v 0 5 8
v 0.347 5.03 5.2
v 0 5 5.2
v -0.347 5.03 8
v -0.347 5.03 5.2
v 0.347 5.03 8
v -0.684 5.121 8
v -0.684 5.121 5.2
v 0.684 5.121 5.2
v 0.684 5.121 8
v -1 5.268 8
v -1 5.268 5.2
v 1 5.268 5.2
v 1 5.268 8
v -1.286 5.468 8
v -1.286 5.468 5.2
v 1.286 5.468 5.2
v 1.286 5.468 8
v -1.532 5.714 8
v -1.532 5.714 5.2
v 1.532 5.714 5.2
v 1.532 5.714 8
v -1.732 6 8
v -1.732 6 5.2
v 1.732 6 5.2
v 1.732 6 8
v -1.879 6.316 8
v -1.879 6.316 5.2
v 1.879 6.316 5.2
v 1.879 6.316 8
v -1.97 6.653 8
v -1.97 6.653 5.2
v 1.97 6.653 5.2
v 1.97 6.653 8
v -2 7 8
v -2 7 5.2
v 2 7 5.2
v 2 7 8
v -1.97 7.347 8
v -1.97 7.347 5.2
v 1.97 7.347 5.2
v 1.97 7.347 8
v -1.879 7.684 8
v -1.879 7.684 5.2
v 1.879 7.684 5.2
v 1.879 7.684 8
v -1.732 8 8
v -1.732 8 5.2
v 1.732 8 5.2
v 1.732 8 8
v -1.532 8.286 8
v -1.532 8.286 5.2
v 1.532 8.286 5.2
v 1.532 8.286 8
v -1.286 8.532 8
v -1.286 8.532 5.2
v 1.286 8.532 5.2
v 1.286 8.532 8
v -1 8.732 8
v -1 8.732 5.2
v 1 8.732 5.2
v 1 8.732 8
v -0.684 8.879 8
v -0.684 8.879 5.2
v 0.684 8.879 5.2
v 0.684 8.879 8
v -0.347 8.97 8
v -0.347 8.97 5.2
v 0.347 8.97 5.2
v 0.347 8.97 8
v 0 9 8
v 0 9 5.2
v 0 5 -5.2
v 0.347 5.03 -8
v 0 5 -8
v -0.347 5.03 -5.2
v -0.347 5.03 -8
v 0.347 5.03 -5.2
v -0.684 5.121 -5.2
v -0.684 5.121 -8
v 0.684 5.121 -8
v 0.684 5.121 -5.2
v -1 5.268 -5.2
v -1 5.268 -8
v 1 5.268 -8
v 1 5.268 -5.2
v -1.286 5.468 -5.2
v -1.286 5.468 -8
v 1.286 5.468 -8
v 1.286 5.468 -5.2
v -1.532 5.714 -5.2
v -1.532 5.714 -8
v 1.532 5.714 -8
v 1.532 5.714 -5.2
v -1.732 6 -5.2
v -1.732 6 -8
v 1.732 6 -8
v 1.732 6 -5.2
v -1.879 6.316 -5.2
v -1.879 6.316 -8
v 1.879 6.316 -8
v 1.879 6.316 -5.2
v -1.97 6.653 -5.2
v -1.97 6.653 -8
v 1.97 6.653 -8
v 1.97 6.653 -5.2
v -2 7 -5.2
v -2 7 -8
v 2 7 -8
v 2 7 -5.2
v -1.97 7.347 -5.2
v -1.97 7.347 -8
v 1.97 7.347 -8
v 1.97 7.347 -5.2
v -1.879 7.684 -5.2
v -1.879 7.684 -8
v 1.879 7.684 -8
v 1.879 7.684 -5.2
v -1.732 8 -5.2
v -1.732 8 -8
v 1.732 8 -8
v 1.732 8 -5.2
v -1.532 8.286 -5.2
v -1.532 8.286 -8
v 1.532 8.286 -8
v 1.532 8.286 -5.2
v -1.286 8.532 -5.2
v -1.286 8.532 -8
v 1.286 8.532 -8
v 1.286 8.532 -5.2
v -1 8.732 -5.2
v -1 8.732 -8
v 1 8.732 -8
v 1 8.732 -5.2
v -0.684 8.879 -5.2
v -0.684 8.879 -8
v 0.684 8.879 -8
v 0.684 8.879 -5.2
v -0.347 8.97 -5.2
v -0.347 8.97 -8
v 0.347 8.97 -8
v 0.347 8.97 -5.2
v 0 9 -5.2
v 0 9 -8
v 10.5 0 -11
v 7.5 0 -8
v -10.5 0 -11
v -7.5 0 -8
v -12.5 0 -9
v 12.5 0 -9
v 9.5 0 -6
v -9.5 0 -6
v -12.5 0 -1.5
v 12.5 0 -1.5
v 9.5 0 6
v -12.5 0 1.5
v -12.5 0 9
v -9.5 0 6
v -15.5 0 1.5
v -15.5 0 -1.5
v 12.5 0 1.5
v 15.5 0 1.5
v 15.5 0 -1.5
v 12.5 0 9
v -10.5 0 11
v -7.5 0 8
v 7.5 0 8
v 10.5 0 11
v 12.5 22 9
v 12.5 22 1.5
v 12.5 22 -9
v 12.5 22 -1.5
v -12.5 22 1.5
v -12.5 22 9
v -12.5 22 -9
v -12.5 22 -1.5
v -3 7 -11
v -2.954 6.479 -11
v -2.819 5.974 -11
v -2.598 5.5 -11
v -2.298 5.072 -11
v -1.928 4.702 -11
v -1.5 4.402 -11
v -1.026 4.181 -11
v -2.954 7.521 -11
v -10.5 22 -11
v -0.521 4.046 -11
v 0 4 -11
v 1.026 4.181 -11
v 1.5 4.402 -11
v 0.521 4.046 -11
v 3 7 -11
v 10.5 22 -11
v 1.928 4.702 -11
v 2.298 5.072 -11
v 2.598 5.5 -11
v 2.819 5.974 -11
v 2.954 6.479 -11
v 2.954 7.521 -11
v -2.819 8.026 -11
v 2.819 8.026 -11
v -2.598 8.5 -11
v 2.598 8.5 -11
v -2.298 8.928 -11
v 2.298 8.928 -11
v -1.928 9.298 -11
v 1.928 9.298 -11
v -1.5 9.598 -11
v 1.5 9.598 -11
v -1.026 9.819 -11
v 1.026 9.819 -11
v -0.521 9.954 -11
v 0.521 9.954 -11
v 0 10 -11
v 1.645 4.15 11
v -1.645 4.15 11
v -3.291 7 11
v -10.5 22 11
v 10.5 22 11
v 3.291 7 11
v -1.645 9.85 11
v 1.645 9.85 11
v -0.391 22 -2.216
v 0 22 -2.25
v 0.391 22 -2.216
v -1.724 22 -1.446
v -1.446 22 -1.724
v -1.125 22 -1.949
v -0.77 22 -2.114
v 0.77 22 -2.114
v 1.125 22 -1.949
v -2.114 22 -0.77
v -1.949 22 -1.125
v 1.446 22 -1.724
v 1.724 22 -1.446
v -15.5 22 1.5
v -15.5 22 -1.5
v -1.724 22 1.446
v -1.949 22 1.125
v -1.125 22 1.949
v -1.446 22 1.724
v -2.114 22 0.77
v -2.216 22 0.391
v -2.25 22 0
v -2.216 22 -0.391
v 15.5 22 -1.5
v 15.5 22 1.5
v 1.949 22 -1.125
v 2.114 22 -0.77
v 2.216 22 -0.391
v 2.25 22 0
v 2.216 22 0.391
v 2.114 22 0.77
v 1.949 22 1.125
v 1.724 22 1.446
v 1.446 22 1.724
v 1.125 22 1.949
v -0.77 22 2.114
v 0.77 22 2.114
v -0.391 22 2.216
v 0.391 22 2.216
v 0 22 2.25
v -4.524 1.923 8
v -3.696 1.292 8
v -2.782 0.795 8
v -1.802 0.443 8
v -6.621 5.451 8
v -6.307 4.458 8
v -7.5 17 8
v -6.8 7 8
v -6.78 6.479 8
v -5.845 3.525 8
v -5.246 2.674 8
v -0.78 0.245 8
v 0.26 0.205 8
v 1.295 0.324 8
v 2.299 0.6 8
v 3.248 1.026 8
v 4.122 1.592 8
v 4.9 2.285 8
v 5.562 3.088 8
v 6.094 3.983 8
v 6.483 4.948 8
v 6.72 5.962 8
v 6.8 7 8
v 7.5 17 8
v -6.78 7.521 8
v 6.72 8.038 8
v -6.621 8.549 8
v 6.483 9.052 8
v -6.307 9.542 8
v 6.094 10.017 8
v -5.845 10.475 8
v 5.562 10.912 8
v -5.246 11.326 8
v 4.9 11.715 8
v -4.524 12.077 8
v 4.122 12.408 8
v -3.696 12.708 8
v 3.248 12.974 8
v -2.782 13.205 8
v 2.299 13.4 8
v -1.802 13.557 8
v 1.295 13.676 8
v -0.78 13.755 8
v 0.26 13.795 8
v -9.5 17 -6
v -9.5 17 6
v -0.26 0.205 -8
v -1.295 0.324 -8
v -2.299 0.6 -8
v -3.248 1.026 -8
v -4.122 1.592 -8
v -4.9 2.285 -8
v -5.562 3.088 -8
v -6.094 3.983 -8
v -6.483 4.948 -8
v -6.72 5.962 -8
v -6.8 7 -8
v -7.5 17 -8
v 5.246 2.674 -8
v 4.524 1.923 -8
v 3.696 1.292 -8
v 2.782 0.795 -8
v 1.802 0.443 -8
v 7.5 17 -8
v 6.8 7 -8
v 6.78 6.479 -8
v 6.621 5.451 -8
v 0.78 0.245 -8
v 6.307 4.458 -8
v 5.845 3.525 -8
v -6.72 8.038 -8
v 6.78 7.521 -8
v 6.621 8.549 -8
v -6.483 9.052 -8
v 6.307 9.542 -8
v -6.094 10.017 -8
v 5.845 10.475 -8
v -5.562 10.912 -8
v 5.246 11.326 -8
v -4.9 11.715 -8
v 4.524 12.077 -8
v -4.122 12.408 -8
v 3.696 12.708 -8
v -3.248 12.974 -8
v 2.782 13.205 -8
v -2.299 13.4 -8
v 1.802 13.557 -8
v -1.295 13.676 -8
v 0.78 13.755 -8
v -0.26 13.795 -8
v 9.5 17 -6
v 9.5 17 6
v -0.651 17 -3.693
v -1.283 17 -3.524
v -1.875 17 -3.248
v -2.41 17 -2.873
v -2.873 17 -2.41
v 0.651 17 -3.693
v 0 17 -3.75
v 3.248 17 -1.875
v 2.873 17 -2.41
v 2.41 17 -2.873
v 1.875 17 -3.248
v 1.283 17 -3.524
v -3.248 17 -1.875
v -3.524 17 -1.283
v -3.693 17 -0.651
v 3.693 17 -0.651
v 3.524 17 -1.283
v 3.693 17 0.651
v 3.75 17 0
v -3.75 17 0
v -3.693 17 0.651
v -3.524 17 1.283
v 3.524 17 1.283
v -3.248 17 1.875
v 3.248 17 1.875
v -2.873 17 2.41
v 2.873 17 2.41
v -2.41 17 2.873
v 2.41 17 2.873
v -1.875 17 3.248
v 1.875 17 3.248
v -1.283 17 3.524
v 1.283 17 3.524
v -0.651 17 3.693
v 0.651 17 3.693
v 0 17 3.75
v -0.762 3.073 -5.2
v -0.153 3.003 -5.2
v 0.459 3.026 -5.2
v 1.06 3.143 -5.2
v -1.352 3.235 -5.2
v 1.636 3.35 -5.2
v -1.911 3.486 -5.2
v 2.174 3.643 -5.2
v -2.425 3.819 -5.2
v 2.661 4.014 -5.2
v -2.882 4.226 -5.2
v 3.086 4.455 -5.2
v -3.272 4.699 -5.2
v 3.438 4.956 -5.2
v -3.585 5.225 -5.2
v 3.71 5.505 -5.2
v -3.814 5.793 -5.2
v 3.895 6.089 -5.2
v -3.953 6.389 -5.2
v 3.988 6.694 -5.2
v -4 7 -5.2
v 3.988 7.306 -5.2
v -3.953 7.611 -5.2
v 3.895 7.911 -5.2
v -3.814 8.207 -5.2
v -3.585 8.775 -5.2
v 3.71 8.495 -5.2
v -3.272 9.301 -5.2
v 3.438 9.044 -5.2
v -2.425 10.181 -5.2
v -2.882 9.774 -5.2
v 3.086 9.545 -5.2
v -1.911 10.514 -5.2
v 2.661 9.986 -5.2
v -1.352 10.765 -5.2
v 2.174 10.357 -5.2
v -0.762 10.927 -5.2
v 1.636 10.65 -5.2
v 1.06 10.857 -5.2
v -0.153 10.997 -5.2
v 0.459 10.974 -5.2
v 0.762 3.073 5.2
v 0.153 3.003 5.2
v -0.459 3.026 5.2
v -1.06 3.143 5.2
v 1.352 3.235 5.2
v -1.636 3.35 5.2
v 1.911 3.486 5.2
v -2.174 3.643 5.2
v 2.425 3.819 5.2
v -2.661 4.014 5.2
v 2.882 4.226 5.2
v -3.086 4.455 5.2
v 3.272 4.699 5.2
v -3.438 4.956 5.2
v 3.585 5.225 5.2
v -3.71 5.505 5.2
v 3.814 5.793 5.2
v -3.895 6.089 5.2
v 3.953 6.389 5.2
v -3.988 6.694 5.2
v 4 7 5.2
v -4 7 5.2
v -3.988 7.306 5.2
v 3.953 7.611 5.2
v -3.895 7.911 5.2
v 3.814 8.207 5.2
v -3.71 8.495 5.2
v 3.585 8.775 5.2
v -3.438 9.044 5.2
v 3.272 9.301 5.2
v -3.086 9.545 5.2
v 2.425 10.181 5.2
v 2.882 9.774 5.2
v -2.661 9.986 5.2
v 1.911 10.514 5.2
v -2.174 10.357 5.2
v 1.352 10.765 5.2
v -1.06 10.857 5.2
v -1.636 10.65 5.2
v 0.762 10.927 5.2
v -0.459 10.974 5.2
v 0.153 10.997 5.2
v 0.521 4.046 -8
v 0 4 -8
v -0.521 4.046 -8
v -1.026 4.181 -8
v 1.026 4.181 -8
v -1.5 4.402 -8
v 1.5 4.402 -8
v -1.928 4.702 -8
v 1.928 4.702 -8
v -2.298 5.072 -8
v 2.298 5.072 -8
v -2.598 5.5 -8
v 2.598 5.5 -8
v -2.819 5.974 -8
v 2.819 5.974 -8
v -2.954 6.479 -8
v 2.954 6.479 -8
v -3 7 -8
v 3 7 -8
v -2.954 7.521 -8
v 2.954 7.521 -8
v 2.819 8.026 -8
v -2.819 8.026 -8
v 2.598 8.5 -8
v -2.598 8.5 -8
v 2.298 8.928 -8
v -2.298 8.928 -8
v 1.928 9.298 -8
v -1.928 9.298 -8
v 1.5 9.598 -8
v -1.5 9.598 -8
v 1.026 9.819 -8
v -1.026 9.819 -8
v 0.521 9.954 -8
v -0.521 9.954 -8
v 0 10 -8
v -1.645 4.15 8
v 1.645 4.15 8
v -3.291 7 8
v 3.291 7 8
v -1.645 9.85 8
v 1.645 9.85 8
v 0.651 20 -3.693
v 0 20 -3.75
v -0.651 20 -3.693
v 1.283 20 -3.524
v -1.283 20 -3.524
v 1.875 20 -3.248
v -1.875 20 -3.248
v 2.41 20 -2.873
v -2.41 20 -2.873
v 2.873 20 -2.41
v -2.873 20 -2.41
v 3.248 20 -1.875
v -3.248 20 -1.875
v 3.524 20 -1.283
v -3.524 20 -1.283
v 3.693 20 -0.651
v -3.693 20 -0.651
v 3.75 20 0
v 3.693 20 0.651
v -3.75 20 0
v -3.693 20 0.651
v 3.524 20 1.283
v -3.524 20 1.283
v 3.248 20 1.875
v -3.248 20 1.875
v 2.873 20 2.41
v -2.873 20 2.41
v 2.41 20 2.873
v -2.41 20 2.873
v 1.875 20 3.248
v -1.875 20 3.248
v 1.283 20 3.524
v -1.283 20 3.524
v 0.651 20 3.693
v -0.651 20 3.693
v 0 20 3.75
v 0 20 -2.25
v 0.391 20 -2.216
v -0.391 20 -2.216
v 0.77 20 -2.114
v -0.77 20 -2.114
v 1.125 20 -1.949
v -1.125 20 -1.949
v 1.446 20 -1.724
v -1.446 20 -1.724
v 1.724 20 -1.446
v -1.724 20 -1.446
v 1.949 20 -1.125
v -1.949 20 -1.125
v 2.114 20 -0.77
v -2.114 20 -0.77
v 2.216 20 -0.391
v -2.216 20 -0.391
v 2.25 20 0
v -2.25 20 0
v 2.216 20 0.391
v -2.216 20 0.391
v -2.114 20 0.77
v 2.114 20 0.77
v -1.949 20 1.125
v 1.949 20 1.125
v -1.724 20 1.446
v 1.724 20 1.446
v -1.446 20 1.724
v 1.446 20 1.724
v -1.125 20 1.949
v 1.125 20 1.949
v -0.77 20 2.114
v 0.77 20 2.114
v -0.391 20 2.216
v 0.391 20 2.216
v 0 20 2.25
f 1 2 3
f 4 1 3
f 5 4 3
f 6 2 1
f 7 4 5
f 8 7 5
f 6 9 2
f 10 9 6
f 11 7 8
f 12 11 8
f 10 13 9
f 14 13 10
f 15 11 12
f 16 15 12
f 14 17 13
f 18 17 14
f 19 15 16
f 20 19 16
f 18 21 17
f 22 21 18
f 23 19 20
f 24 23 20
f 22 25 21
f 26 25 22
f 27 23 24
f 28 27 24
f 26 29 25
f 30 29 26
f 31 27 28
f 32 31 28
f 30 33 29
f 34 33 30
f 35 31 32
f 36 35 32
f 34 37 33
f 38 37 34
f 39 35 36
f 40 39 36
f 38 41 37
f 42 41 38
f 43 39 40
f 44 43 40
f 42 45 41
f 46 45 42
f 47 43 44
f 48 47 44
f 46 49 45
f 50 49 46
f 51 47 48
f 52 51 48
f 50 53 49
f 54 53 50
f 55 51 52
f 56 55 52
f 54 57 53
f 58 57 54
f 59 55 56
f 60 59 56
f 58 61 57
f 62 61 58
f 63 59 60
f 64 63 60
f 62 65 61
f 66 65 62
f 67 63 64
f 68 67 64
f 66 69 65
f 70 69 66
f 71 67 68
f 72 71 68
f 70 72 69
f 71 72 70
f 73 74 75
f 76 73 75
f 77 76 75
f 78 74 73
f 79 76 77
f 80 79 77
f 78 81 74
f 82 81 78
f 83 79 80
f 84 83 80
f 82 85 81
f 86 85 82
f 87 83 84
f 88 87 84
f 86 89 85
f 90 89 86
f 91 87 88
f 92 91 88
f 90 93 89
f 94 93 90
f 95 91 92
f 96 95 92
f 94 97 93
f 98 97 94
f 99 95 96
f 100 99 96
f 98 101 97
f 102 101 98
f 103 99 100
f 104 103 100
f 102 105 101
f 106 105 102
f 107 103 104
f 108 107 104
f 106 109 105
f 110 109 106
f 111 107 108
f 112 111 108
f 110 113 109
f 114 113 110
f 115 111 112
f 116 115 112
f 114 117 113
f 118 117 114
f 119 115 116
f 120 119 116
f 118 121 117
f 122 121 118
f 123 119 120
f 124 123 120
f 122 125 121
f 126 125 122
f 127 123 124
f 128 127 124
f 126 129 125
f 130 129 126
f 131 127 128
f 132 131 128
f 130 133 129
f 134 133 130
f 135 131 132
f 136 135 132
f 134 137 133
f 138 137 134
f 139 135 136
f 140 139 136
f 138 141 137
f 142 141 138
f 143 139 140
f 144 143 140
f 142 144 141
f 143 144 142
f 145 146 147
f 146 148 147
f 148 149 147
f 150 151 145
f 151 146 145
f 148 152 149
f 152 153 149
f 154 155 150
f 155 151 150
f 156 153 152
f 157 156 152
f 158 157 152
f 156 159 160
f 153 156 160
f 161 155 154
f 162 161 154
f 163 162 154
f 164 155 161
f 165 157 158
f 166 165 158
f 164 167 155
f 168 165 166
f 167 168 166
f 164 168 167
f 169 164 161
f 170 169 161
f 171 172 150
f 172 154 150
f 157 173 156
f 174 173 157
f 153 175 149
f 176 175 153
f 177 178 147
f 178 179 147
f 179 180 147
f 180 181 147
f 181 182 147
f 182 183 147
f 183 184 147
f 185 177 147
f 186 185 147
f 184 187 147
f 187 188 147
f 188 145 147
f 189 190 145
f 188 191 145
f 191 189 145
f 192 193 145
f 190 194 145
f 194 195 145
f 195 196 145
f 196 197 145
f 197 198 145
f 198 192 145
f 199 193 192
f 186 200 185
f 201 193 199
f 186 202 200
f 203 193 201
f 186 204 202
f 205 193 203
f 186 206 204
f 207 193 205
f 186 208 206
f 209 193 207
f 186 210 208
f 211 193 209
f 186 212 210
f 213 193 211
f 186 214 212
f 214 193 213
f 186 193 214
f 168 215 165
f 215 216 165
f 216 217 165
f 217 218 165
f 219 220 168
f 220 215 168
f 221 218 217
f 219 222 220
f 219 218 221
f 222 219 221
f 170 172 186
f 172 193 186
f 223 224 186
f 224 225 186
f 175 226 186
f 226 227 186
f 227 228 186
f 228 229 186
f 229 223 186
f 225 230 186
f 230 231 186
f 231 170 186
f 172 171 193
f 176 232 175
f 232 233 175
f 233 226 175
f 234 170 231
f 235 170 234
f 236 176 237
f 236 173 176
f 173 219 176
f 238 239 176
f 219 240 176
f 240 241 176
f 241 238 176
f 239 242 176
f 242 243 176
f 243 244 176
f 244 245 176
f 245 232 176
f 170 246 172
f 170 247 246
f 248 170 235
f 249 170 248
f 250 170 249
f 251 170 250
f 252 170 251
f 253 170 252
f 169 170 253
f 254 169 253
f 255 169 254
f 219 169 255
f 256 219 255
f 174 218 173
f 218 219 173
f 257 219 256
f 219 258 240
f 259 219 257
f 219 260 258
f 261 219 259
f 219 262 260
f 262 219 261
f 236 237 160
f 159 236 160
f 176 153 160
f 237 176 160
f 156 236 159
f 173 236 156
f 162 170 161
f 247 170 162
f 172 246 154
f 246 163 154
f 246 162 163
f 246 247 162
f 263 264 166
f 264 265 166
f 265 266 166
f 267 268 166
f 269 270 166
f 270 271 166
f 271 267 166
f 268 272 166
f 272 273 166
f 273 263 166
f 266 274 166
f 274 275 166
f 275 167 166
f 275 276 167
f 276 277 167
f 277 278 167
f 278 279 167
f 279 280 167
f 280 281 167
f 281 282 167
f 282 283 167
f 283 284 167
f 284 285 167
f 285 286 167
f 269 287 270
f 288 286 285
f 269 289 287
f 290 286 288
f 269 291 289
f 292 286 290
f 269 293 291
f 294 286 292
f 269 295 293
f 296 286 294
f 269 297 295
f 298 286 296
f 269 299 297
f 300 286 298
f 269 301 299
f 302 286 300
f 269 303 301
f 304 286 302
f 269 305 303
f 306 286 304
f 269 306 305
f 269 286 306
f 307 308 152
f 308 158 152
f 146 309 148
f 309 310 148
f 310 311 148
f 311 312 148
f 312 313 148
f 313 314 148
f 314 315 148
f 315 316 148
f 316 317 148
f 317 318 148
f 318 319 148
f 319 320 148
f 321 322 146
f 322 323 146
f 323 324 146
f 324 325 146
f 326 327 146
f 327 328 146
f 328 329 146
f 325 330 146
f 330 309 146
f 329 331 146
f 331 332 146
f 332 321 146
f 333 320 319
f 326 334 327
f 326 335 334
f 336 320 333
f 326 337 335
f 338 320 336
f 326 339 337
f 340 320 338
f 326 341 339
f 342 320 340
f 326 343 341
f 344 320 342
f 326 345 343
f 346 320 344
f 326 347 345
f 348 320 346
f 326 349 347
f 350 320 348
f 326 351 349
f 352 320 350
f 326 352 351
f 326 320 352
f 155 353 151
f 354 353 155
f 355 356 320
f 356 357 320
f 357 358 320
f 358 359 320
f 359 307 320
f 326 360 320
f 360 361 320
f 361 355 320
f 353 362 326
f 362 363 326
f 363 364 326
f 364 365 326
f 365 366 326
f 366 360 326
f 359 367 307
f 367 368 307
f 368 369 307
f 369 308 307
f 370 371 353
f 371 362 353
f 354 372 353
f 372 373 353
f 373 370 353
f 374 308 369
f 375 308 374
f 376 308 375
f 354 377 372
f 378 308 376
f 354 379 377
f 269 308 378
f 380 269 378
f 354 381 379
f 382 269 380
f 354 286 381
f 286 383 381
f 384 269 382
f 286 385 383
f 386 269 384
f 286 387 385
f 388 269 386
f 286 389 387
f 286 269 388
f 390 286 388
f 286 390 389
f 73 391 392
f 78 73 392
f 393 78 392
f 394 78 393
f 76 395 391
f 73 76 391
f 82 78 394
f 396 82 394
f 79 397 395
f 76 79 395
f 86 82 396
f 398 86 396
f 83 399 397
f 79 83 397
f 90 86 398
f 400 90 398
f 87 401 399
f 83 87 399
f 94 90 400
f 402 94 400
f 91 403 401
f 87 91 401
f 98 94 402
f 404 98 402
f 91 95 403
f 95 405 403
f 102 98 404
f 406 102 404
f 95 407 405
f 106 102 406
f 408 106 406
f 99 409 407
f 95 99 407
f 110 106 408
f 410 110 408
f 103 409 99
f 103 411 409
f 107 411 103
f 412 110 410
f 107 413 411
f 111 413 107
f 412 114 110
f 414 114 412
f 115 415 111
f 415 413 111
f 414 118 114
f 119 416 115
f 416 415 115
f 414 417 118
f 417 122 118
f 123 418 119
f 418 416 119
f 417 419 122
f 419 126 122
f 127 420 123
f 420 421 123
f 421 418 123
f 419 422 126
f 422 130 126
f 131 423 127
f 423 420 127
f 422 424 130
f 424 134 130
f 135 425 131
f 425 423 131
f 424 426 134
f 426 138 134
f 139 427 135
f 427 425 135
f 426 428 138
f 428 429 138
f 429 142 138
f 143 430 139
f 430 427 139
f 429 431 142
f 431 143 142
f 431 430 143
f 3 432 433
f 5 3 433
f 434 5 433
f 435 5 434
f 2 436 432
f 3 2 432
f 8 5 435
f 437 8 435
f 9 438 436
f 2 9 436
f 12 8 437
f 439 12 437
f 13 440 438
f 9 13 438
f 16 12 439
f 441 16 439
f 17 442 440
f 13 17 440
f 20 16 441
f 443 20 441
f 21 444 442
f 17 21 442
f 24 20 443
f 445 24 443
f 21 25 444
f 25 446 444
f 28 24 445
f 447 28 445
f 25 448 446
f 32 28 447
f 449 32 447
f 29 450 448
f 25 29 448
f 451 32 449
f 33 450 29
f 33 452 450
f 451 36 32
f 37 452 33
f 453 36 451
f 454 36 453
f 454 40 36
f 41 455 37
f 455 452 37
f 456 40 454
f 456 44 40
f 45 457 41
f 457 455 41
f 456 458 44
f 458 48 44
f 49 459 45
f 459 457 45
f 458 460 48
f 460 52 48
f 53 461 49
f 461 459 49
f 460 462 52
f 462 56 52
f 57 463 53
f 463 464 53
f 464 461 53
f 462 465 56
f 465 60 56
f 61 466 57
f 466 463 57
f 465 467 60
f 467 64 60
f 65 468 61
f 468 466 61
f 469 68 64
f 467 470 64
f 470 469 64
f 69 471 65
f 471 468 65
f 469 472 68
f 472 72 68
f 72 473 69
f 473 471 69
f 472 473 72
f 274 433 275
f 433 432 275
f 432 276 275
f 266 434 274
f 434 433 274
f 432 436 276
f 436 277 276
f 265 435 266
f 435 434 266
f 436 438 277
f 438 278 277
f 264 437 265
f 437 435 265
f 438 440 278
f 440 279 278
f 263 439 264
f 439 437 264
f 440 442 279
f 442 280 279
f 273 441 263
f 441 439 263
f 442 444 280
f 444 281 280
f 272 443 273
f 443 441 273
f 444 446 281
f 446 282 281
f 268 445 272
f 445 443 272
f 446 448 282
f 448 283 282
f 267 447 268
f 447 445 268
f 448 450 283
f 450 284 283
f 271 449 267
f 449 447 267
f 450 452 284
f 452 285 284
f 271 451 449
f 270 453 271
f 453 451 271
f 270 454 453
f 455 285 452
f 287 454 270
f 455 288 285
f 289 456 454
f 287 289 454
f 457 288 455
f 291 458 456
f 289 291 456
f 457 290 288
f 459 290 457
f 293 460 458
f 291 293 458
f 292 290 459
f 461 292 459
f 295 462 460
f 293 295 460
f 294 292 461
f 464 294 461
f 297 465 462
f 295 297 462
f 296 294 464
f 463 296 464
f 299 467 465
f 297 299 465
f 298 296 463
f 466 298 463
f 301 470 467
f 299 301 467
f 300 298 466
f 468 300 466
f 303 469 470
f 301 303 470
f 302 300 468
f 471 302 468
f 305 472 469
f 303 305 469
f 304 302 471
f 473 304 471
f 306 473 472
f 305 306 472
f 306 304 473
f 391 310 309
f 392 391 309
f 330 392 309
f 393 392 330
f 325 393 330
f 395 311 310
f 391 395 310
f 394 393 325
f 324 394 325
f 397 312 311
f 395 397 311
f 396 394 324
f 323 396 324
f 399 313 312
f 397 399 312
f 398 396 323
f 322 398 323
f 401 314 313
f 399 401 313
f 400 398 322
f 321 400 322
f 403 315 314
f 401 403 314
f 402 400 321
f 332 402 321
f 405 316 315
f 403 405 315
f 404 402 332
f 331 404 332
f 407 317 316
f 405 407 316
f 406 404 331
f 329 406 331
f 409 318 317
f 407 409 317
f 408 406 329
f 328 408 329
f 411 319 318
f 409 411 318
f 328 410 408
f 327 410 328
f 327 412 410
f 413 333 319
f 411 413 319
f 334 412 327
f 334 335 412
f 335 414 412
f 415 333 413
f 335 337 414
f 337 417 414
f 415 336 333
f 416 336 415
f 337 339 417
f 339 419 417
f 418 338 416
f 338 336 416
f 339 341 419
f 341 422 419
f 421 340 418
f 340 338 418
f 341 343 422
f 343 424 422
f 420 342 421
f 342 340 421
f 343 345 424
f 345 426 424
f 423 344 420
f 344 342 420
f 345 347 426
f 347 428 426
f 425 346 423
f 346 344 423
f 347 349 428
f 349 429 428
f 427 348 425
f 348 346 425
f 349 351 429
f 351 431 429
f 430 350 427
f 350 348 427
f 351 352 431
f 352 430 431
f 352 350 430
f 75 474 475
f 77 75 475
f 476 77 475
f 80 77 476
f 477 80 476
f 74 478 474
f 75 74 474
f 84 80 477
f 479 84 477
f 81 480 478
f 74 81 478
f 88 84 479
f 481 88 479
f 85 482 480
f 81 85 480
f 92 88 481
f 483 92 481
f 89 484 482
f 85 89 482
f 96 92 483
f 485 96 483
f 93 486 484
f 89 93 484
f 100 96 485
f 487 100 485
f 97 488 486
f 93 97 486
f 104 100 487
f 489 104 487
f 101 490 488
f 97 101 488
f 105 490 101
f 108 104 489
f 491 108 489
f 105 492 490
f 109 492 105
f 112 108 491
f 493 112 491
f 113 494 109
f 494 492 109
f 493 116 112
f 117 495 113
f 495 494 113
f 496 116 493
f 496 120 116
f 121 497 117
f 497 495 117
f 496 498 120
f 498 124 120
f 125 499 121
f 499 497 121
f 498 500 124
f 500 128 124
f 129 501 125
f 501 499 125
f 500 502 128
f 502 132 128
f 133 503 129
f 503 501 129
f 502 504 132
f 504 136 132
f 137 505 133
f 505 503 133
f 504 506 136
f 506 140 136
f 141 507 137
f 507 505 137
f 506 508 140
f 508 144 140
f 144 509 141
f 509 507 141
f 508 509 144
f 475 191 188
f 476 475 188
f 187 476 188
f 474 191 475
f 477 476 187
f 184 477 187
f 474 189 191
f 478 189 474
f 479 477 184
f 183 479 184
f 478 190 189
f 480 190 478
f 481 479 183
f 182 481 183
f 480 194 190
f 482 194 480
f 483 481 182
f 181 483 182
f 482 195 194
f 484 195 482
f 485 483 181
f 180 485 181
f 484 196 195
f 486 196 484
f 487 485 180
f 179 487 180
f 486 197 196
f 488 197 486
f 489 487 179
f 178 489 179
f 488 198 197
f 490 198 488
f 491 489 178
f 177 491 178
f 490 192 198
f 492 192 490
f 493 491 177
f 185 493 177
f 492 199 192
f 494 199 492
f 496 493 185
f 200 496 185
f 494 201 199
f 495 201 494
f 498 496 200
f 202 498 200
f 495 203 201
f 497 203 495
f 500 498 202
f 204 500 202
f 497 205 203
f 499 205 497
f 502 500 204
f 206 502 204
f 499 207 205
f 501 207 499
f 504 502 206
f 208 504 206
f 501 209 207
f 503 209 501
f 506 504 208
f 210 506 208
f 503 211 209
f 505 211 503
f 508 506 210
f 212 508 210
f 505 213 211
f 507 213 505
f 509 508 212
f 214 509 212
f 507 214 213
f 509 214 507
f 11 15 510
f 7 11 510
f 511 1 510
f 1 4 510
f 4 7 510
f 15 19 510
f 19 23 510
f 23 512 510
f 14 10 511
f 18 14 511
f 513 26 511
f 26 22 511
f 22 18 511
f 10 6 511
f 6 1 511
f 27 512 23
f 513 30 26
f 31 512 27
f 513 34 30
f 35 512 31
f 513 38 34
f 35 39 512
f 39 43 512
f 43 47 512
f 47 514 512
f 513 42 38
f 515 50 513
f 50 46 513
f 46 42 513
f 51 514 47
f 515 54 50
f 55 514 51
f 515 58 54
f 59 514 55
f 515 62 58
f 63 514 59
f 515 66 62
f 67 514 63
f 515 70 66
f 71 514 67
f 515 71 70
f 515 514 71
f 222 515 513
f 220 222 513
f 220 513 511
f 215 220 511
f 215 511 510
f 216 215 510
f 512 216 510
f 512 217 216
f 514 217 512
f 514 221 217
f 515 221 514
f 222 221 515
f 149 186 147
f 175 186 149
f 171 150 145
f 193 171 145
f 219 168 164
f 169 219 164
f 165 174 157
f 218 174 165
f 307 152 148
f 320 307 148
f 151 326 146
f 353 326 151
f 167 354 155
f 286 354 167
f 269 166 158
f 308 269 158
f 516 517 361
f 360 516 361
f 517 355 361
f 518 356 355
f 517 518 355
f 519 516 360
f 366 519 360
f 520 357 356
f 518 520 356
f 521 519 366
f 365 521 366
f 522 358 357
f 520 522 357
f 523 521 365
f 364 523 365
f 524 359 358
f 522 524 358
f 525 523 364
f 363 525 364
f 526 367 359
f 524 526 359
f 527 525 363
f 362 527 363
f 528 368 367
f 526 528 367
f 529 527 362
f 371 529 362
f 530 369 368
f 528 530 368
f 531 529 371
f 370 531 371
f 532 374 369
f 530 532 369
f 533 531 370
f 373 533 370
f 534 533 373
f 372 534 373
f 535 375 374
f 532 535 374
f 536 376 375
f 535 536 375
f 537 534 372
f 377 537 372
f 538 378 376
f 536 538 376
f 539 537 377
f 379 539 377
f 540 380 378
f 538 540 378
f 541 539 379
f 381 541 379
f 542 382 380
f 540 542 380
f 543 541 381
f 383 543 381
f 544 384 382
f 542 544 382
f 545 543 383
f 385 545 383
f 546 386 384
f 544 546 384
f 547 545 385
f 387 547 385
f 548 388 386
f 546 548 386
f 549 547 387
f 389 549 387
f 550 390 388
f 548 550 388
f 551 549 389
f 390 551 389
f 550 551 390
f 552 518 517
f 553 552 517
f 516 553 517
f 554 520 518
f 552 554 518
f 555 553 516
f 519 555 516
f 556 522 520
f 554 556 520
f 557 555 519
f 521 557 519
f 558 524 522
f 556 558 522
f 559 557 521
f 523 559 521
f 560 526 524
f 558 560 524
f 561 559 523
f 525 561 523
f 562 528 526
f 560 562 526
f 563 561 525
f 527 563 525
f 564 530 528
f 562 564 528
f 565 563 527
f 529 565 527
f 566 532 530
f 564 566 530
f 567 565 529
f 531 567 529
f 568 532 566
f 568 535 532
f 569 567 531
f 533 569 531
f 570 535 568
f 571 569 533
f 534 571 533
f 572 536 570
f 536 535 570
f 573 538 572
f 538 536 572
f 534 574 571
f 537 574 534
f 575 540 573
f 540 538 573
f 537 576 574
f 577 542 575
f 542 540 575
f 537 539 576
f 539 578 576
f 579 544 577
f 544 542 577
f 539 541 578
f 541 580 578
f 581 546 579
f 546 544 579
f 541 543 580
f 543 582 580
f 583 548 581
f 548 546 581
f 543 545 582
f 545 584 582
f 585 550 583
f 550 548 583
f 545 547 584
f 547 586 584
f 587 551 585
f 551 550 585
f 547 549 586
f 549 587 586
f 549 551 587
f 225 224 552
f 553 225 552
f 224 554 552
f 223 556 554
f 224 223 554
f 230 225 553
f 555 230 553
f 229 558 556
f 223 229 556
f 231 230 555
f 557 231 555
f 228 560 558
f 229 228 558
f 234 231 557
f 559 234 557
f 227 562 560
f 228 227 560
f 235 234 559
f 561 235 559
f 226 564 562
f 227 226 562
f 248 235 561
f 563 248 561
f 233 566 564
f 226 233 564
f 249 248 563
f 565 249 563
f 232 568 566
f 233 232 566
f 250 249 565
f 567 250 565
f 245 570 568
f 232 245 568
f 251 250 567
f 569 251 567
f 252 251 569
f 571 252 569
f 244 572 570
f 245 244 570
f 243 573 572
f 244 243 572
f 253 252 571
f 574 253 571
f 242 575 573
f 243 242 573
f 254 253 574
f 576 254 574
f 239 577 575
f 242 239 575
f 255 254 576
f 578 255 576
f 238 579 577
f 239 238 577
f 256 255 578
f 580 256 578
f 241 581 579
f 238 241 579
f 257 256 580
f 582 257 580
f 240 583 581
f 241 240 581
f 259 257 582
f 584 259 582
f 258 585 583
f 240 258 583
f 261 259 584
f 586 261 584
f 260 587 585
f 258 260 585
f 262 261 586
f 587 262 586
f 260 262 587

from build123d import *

# Parameters (mm, degrees)
SKETCH1_W           = 25
SKETCH1_H           = 22
BOSS_EXTRUDE1_DEPTH = 22
SKETCH3_W           = 31
SKETCH3_H           = 3
BOSS_EXTRUDE2_DEPTH = 22
SKETCH4_W           = 19
SKETCH4_H           = 16
CUT_EXTRUDE3_DEPTH  = 17
SKETCH5_R           = 3
BOSS_EXTRUDE3_DEPTH = 2.8
BOSS_EXTRUDE4_START = 2.8
SKETCH6_R           = 3
BOSS_EXTRUDE4_DEPTH = 2.8
SKETCH7_R           = 2
CUT_EXTRUDE4_DEPTH  = 35.759890679
CHAMFER1_SIZE       = 3.8
SKETCH8_R           = 3
CUT_EXTRUDE5_DEPTH  = 3
CUT_EXTRUDE6_DEPTH  = 3
CHAMFER2_SIZE       = 2
SKETCH10_R          = 3.75
CUT_EXTRUDE7_DEPTH  = 3
SKETCH11_R          = 2.25
CUT_EXTRUDE8_DEPTH  = 28.590759323


with BuildPart() as part:
    # Sketch1 → Boss-Extrude1 (new body)
    with BuildSketch(Plane(origin=(0, 0, 0), x_dir=(1, 0, 0), z_dir=(0, 1, 0))):
        Rectangle(SKETCH1_W, SKETCH1_H)
    extrude(amount=BOSS_EXTRUDE1_DEPTH)

    # Sketch3 → Boss-Extrude2 (add)
    with BuildSketch(Plane(origin=(0, 0, 0), x_dir=(1, 0, 0), z_dir=(0, 1, 0))):
        Rectangle(SKETCH3_W, SKETCH3_H)
    extrude(amount=BOSS_EXTRUDE2_DEPTH)

    # Sketch4 → Cut-Extrude3 (cut)
    with BuildSketch(Plane(origin=(0, 0, 0), x_dir=(1, 0, 0), z_dir=(0, 1, 0))):
        Rectangle(SKETCH4_W, SKETCH4_H)
    extrude(amount=CUT_EXTRUDE3_DEPTH, mode=Mode.SUBTRACT)

    # Sketch5 → Boss-Extrude3 (add)
    with BuildSketch(Plane(origin=(0, 0, -8), x_dir=(-1, 0, 0), z_dir=(0, 0, -1))):
        with Locations((0, 7)):
            Circle(SKETCH5_R)
    extrude(amount=-BOSS_EXTRUDE3_DEPTH)

    # Sketch6 → Boss-Extrude4 (add)
    with BuildSketch(Plane(origin=(0, 0, 8), x_dir=(-1, 0, 0), z_dir=(0, 0, -1)).offset(BOSS_EXTRUDE4_START)):
        with Locations((0, 7)):
            Circle(SKETCH6_R)
    extrude(amount=-BOSS_EXTRUDE4_DEPTH)

    # Sketch7 → Cut-Extrude4 (cut, through all)
    with BuildSketch(Plane(origin=(0, 0, -11), x_dir=(-1, 0, 0), z_dir=(0, 0, -1))):
        with Locations((0, 7)):
            Circle(SKETCH7_R)
    extrude(amount=-CUT_EXTRUDE4_DEPTH, mode=Mode.SUBTRACT)

    # Chamfer1
    # the kernel refuses this chamfer: 3.8 mm, written as the material it adds along each edge
    with BuildSketch(Plane(origin=(0, 7, 8), x_dir=(-1, 0, 0), z_dir=(0, -1, 0))) as chamfer1_piece_1_section:
        Polygon((3 + CHAMFER1_SIZE, 0), (3, CHAMFER1_SIZE), (3, 0), align=None)
    chamfer1_piece_1 = revolve(axis=Axis((0, 7, 8), (0, 0, -1)), mode=Mode.PRIVATE)
    chamfer1_piece_1 = split(chamfer1_piece_1, bisect_by=Plane(origin=(5.412454592, 7, 5.2), z_dir=(0, 0, 1)), keep=Keep.TOP, mode=Mode.PRIVATE)
    add(chamfer1_piece_1)
    with BuildSketch(Plane(origin=(0, 7, -8), x_dir=(-1, 0, 0), z_dir=(0, -1, 0))) as chamfer1_piece_2_section:
        Polygon((3 + CHAMFER1_SIZE, 0), (3, -CHAMFER1_SIZE), (3, 0), align=None)
    chamfer1_piece_2 = revolve(axis=Axis((0, 7, -8), (0, 0, -1)), mode=Mode.PRIVATE)
    chamfer1_piece_2 = split(chamfer1_piece_2, bisect_by=Plane(origin=(5.412454592, 7, -5.2), z_dir=(0, 0, -1)), keep=Keep.TOP, mode=Mode.PRIVATE)
    add(chamfer1_piece_2)

    # Sketch8 → Cut-Extrude5 (cut)
    with BuildSketch(Plane(origin=(0, 0, -11), x_dir=(-1, 0, 0), z_dir=(0, 0, -1))):
        with Locations((0, 7)):
            Circle(SKETCH8_R)
    extrude(amount=-CUT_EXTRUDE5_DEPTH, mode=Mode.SUBTRACT)

    # Sketch9 → Cut-Extrude6 (cut)
    with BuildSketch(Plane.XY.offset(11)):
        Polygon((1.645448267, 9.85), (-1.645448267, 9.85), (-3.290896534, 7), (-1.645448267, 4.15), (1.645448267, 4.15), (3.290896534, 7), align=None)
    extrude(amount=-CUT_EXTRUDE6_DEPTH, mode=Mode.SUBTRACT)

    # Chamfer2
    chamfer2_edges = [part.edges().sort_by_distance(p)[0] for p in [
        (-9.5, 8.5, 8),
        (-9.5, 8.5, -8),
        (9.5, 8.5, -8),
        (9.5, 8.5, 8),
        (12.5, 11, 11),
        (-12.5, 11, 11),
        (-12.5, 11, -11),
        (12.5, 11, -11),
    ]]
    chamfer(chamfer2_edges, length=CHAMFER2_SIZE)

    # Sketch10 → Cut-Extrude7 (cut)
    with BuildSketch(Plane.XZ.offset(-17)):
        with Locations(Location((0, 0, 0), (0, 0, 270))):
            Circle(SKETCH10_R)
    extrude(amount=-CUT_EXTRUDE7_DEPTH, mode=Mode.SUBTRACT)

    # Sketch11 → Cut-Extrude8 (cut, through all)
    with BuildSketch(Plane.XZ.offset(-20)):
        with Locations(Location((0, 0, 0), (0, 0, 270))):
            Circle(SKETCH11_R)
    extrude(amount=-CUT_EXTRUDE8_DEPTH, mode=Mode.SUBTRACT)


solid = part.part
